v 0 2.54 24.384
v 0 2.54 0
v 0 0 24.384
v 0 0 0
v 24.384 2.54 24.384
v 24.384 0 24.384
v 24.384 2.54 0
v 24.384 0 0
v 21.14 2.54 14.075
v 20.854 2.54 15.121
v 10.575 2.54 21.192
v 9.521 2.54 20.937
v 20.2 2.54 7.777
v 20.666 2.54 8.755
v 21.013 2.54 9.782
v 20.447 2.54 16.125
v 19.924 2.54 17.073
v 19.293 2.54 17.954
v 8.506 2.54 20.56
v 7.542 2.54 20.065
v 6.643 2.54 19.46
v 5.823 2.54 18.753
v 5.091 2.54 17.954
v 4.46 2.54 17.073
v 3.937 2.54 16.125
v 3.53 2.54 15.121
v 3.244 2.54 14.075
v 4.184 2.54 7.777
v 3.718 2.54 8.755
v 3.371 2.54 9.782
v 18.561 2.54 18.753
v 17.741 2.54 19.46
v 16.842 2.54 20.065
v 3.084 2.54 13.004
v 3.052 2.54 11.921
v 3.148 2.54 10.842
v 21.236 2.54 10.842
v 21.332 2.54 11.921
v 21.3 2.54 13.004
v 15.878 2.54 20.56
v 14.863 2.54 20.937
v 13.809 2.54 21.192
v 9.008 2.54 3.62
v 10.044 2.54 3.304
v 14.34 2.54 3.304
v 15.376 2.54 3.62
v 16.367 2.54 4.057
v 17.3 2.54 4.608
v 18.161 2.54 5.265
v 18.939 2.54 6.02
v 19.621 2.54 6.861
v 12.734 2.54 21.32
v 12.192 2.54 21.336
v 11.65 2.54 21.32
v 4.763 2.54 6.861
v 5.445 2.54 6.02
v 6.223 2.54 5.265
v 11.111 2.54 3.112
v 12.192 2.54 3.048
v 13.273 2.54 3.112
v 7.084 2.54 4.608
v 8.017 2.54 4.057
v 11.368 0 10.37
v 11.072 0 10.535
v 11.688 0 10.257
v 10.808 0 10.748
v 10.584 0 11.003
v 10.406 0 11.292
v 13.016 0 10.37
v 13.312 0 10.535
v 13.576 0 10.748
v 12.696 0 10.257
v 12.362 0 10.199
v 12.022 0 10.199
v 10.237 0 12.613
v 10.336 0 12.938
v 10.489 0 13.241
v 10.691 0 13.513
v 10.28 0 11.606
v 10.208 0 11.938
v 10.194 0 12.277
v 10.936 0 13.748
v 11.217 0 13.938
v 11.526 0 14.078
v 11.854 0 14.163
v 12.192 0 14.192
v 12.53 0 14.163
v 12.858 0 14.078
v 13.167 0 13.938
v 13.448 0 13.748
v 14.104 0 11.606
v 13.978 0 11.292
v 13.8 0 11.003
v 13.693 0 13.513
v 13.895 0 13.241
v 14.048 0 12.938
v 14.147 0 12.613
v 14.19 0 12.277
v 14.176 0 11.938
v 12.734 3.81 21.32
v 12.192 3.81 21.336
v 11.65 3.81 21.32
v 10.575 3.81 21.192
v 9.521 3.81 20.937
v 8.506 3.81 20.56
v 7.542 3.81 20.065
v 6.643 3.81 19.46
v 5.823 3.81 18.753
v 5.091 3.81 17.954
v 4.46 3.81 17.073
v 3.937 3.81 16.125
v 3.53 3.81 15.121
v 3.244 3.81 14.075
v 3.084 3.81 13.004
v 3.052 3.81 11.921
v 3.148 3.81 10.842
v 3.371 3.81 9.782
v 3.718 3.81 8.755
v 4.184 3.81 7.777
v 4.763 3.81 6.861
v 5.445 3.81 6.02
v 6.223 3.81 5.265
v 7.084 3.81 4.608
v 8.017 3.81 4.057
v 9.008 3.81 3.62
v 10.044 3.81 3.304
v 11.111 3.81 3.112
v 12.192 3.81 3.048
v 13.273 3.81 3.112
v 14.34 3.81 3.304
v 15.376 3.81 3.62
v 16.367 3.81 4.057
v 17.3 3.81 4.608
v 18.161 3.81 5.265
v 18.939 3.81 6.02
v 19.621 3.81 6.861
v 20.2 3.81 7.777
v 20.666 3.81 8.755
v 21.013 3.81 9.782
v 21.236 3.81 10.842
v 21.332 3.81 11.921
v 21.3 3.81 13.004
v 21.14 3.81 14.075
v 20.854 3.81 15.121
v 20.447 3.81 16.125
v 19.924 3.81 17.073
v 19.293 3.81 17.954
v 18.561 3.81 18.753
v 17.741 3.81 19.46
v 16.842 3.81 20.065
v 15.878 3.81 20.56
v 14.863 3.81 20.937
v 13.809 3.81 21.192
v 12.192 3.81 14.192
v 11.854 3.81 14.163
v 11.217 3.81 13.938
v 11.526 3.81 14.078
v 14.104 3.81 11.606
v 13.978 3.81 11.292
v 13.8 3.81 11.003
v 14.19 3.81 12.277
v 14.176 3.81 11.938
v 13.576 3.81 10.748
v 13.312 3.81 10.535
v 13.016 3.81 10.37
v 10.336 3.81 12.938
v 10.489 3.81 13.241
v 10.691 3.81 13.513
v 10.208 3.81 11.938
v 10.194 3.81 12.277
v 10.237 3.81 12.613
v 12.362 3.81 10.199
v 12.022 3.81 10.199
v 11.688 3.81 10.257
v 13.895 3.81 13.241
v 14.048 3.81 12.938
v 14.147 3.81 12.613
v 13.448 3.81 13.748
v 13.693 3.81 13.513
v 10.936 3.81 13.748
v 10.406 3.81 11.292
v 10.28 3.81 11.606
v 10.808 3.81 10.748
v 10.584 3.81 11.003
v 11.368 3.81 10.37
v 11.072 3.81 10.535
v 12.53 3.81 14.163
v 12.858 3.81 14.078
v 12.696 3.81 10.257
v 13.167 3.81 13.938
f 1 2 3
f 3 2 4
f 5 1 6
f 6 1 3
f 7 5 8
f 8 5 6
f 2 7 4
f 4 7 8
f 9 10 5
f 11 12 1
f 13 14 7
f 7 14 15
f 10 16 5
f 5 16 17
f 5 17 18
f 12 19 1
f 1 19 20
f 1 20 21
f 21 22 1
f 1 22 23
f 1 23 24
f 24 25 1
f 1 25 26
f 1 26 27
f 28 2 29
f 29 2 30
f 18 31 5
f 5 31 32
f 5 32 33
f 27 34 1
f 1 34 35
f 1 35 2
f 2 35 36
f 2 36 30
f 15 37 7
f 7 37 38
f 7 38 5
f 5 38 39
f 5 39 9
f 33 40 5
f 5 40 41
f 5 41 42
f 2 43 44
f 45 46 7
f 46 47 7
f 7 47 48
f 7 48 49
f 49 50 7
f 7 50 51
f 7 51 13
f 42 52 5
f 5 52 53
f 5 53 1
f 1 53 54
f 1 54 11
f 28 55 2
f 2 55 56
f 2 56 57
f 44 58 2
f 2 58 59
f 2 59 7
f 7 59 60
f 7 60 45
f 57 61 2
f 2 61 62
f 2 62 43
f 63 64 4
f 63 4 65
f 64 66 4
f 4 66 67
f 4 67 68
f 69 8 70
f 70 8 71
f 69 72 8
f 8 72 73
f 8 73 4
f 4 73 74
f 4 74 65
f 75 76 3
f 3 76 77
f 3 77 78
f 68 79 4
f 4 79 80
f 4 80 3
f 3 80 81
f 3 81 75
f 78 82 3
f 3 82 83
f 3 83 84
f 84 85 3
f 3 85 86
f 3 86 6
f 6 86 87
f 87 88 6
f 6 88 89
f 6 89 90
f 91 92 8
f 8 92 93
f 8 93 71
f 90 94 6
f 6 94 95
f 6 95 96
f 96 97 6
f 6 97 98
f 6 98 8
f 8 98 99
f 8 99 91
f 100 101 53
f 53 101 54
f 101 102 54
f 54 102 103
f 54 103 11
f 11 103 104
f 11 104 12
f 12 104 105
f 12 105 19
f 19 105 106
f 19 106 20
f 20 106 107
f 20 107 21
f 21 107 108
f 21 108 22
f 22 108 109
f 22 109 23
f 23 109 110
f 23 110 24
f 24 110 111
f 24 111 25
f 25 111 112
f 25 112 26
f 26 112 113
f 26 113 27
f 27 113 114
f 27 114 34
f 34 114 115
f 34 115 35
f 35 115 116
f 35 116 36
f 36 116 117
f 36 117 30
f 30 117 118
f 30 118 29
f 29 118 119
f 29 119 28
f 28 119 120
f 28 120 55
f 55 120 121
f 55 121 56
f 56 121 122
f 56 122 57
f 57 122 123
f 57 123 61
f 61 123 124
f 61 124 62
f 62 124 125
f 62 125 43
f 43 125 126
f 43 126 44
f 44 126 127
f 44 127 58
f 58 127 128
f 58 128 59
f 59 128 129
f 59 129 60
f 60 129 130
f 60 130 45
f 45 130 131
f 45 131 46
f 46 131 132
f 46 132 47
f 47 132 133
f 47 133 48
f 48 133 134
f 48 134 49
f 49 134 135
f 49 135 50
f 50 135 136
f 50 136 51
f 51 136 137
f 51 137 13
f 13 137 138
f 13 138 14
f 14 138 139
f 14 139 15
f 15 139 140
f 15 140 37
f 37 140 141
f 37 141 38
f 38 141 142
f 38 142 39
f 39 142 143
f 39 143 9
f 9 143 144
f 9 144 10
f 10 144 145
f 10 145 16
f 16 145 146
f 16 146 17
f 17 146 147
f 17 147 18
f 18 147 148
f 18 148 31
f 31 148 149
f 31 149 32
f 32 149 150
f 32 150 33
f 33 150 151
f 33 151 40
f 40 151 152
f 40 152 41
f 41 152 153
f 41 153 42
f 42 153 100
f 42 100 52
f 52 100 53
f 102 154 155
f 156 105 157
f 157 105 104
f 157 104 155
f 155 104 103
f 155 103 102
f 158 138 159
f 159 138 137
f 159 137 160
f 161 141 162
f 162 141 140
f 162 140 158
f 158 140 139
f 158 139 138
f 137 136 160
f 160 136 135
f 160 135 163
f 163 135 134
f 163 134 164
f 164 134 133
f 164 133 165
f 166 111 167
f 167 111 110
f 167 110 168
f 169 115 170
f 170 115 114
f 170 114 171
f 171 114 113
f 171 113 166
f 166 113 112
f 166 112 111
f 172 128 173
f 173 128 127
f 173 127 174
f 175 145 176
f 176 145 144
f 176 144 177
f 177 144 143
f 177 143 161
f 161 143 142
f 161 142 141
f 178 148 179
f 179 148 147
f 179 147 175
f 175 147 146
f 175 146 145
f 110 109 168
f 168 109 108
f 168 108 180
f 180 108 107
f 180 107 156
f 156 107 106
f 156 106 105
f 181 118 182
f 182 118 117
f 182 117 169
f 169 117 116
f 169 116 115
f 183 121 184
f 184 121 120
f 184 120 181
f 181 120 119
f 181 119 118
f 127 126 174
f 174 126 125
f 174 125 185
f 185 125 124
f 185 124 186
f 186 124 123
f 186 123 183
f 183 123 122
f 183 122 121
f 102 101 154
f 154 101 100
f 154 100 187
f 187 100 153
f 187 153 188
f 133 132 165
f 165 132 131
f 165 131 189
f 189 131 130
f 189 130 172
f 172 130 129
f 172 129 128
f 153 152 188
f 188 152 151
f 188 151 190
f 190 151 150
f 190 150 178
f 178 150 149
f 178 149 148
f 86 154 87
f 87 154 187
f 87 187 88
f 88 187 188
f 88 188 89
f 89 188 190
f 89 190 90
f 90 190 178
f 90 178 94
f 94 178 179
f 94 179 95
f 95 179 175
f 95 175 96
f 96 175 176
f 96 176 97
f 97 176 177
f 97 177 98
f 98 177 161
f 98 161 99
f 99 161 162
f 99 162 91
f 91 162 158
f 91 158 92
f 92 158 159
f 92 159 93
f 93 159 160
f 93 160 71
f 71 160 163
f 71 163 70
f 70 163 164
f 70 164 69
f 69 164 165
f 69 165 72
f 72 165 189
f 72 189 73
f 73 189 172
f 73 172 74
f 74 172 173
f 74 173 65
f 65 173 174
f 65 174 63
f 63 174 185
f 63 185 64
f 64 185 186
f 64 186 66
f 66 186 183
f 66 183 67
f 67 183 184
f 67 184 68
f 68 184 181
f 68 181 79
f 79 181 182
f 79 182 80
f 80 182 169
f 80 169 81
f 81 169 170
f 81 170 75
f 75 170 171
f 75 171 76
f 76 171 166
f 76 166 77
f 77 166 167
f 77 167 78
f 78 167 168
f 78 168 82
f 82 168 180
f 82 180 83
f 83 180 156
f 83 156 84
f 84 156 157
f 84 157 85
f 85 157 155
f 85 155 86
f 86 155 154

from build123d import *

# Parameters (mm, degrees)
SKETCH1_W           = 24.384
SKETCH1_H           = 24.384
BOSS_EXTRUDE1_DEPTH = 2.54
SKETCH2_R           = 9.144
BOSS_EXTRUDE2_DEPTH = 1.27
SKETCH3_R           = 2
CUT_EXTRUDE1_DEPTH  = 35.694019831


with BuildPart() as part:
    # Sketch1 → Boss-Extrude1 (new body)
    with BuildSketch(Plane(origin=(0, 0, 0), x_dir=(1, 0, 0), z_dir=(0, 1, 0))):
        with Locations((12.192, -12.192)):
            Rectangle(SKETCH1_W, SKETCH1_H)
    extrude(amount=BOSS_EXTRUDE1_DEPTH)

    # Sketch2 → Boss-Extrude2 (add)
    with BuildSketch(Plane(origin=(0, 2.54, 0), x_dir=(1, 0, 0), z_dir=(0, 1, 0))):
        with Locations(Location((12.192, -12.192, 0), (0, 0, 270))):
            Circle(SKETCH2_R)
    extrude(amount=BOSS_EXTRUDE2_DEPTH)

    # Sketch3 → Cut-Extrude1 (cut, through all)
    with BuildSketch(Plane(origin=(0, 3.81, 0), x_dir=(1, 0, 0), z_dir=(0, 1, 0))):
        with Locations(Location((12.192, -12.192, 0), (0, 0, 270))):
            Circle(SKETCH3_R)
    extrude(amount=-CUT_EXTRUDE1_DEPTH, mode=Mode.SUBTRACT)


solid = part.part
